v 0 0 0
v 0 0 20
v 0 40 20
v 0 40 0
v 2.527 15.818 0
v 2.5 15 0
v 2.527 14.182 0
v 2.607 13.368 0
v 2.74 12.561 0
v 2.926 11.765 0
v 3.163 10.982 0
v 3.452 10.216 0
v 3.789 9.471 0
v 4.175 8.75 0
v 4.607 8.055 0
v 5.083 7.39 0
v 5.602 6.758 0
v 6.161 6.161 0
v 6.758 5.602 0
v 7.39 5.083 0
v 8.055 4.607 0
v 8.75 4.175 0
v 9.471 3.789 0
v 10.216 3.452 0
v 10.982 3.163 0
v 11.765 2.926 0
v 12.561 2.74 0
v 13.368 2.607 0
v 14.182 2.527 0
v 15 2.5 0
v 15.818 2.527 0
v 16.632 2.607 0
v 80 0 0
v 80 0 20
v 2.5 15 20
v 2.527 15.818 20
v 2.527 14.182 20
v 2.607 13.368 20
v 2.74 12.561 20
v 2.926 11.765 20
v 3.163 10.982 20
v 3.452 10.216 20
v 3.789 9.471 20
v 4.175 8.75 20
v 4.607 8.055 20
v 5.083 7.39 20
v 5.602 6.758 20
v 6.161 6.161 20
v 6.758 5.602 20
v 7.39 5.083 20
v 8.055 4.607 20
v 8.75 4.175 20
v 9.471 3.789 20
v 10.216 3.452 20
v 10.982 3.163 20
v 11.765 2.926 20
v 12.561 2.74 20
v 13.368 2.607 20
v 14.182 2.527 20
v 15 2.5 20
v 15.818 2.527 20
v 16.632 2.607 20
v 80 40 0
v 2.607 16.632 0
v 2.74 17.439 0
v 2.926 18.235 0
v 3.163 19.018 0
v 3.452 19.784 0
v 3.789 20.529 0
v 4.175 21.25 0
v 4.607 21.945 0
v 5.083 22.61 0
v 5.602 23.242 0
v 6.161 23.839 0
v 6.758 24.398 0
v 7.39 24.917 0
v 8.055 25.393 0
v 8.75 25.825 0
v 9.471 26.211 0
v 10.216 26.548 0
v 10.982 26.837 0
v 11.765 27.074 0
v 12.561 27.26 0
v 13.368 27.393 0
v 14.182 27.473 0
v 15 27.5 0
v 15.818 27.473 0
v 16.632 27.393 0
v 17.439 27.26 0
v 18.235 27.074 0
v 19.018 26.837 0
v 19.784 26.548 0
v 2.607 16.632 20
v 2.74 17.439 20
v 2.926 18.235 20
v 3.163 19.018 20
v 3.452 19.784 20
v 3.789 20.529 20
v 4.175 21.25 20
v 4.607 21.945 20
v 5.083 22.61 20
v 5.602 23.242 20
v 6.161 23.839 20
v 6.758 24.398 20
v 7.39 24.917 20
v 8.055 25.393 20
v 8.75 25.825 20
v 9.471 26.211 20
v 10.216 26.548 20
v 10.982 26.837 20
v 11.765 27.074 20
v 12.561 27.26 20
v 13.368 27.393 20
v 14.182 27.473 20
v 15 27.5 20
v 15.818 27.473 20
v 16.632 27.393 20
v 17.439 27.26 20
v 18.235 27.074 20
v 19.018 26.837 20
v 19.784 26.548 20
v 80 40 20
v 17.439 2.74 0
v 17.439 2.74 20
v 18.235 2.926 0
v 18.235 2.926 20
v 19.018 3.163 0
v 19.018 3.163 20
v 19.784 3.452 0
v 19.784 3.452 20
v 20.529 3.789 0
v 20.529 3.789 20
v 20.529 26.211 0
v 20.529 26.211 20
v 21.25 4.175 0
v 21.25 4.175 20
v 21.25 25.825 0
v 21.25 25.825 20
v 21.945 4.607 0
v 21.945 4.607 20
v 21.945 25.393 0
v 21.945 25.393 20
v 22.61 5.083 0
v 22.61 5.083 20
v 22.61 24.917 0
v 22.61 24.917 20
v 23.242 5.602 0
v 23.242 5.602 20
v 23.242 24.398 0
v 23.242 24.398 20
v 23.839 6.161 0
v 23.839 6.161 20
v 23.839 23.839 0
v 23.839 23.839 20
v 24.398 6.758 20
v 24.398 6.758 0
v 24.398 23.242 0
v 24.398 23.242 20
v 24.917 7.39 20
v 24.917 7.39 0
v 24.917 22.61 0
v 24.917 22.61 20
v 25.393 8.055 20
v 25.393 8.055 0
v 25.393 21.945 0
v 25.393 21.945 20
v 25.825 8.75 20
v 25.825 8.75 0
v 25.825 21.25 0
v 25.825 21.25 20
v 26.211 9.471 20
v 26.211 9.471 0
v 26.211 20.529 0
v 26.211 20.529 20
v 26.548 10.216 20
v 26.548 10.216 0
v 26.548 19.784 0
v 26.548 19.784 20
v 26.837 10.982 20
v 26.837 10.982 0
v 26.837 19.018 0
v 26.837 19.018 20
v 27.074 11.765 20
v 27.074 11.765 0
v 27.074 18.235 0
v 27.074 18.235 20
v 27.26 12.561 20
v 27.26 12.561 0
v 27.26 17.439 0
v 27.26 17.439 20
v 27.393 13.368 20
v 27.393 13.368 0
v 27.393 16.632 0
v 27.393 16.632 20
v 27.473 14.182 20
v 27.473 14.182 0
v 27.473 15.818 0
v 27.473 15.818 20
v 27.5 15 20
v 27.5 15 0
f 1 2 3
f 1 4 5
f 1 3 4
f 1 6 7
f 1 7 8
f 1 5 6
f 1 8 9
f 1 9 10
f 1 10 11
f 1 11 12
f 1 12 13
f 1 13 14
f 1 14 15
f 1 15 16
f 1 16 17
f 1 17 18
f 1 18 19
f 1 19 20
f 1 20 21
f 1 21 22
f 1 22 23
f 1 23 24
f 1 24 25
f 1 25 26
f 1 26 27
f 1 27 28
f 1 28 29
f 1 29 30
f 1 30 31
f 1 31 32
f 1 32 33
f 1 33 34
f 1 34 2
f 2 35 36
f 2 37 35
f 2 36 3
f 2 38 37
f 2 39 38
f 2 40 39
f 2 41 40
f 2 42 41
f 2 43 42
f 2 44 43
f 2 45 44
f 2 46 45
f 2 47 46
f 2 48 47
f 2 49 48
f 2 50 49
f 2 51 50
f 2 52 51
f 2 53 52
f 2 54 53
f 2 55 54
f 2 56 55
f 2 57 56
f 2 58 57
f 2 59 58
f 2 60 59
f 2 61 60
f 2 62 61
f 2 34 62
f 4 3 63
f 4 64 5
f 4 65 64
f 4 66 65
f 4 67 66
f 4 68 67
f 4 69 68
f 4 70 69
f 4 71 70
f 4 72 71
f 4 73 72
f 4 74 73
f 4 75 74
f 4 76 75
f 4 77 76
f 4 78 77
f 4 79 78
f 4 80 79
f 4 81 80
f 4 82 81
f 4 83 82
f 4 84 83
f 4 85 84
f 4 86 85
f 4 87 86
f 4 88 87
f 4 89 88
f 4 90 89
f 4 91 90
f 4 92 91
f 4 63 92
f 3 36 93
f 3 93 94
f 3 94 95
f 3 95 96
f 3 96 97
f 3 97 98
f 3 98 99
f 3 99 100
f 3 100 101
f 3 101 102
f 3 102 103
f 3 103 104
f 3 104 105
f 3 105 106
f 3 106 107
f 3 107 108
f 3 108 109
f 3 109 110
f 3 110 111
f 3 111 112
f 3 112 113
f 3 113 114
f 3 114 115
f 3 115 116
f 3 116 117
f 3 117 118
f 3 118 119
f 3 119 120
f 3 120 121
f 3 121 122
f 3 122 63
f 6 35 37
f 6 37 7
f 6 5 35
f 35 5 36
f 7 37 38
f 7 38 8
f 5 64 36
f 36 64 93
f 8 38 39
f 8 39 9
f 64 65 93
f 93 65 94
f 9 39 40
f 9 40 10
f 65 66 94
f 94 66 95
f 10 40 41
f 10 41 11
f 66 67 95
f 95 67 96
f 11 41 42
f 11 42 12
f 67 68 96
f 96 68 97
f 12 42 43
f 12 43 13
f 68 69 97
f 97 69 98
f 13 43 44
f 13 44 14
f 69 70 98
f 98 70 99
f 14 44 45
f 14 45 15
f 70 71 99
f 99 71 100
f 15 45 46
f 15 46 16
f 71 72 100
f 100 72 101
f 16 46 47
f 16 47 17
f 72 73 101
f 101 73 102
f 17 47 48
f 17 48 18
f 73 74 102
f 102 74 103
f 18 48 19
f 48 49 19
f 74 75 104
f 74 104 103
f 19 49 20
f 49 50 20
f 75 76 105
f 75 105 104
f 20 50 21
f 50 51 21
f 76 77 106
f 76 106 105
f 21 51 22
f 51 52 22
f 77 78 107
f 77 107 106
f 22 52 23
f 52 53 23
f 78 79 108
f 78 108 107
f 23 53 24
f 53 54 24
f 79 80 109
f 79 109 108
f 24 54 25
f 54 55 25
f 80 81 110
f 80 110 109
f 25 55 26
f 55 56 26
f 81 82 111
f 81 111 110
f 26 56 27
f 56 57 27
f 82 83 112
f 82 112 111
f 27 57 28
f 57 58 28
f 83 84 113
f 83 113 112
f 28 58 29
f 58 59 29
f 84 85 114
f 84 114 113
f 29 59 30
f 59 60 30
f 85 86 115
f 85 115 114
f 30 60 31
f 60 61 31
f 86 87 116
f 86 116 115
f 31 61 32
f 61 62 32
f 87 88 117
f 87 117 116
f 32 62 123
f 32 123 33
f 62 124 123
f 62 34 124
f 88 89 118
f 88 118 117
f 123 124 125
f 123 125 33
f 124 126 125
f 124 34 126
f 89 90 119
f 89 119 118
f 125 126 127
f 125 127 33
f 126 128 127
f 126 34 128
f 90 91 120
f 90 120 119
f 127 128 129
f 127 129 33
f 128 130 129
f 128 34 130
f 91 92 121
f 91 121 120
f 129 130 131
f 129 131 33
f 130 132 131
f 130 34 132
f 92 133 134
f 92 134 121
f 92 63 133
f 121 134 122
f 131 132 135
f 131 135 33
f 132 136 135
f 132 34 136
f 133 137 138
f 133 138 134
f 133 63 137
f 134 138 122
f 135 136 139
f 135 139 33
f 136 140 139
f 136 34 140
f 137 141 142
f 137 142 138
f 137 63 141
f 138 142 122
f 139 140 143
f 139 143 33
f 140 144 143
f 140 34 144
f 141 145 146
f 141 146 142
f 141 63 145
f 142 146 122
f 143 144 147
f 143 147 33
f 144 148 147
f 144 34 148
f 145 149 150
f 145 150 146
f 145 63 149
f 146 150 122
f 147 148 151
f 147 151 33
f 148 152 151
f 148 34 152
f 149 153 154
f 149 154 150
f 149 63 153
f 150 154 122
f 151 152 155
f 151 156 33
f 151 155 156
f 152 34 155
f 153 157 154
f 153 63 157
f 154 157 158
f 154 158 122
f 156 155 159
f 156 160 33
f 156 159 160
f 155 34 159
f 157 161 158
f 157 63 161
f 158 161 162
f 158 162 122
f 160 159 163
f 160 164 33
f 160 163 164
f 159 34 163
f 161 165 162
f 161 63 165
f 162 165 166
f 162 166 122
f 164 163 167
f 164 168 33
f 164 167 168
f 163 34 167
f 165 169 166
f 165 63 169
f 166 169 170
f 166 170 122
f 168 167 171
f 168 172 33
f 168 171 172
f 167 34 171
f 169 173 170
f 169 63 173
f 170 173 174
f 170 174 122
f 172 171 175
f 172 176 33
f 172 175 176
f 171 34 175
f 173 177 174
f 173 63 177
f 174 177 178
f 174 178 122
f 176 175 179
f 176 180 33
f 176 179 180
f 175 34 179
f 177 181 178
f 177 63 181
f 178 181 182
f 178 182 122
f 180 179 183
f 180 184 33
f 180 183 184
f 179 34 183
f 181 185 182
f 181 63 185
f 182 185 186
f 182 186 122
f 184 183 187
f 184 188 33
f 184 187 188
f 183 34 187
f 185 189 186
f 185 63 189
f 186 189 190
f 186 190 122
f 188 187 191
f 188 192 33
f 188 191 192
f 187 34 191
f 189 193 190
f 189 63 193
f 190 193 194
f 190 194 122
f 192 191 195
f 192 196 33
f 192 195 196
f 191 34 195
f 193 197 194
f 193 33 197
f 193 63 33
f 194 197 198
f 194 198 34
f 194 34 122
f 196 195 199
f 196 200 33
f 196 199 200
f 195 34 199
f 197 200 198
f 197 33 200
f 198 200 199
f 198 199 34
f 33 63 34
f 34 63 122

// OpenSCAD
// demo-kutu - Design Engine uretimi, tum olculer mm.
// Kaynak: input.json (kullanici degerleri degistirilmedi).

// PARAM
width = 80;
depth = 40;
height = 20;
wall_thickness = 2;
hole_diameter = 25;
hole_x = 15;
hole_y = 15;

$fn = 96;

difference() {
    cube([width, depth, height]);
    translate([15, 15, -1])
        cylinder(d = 25, h = height + 2);
}
